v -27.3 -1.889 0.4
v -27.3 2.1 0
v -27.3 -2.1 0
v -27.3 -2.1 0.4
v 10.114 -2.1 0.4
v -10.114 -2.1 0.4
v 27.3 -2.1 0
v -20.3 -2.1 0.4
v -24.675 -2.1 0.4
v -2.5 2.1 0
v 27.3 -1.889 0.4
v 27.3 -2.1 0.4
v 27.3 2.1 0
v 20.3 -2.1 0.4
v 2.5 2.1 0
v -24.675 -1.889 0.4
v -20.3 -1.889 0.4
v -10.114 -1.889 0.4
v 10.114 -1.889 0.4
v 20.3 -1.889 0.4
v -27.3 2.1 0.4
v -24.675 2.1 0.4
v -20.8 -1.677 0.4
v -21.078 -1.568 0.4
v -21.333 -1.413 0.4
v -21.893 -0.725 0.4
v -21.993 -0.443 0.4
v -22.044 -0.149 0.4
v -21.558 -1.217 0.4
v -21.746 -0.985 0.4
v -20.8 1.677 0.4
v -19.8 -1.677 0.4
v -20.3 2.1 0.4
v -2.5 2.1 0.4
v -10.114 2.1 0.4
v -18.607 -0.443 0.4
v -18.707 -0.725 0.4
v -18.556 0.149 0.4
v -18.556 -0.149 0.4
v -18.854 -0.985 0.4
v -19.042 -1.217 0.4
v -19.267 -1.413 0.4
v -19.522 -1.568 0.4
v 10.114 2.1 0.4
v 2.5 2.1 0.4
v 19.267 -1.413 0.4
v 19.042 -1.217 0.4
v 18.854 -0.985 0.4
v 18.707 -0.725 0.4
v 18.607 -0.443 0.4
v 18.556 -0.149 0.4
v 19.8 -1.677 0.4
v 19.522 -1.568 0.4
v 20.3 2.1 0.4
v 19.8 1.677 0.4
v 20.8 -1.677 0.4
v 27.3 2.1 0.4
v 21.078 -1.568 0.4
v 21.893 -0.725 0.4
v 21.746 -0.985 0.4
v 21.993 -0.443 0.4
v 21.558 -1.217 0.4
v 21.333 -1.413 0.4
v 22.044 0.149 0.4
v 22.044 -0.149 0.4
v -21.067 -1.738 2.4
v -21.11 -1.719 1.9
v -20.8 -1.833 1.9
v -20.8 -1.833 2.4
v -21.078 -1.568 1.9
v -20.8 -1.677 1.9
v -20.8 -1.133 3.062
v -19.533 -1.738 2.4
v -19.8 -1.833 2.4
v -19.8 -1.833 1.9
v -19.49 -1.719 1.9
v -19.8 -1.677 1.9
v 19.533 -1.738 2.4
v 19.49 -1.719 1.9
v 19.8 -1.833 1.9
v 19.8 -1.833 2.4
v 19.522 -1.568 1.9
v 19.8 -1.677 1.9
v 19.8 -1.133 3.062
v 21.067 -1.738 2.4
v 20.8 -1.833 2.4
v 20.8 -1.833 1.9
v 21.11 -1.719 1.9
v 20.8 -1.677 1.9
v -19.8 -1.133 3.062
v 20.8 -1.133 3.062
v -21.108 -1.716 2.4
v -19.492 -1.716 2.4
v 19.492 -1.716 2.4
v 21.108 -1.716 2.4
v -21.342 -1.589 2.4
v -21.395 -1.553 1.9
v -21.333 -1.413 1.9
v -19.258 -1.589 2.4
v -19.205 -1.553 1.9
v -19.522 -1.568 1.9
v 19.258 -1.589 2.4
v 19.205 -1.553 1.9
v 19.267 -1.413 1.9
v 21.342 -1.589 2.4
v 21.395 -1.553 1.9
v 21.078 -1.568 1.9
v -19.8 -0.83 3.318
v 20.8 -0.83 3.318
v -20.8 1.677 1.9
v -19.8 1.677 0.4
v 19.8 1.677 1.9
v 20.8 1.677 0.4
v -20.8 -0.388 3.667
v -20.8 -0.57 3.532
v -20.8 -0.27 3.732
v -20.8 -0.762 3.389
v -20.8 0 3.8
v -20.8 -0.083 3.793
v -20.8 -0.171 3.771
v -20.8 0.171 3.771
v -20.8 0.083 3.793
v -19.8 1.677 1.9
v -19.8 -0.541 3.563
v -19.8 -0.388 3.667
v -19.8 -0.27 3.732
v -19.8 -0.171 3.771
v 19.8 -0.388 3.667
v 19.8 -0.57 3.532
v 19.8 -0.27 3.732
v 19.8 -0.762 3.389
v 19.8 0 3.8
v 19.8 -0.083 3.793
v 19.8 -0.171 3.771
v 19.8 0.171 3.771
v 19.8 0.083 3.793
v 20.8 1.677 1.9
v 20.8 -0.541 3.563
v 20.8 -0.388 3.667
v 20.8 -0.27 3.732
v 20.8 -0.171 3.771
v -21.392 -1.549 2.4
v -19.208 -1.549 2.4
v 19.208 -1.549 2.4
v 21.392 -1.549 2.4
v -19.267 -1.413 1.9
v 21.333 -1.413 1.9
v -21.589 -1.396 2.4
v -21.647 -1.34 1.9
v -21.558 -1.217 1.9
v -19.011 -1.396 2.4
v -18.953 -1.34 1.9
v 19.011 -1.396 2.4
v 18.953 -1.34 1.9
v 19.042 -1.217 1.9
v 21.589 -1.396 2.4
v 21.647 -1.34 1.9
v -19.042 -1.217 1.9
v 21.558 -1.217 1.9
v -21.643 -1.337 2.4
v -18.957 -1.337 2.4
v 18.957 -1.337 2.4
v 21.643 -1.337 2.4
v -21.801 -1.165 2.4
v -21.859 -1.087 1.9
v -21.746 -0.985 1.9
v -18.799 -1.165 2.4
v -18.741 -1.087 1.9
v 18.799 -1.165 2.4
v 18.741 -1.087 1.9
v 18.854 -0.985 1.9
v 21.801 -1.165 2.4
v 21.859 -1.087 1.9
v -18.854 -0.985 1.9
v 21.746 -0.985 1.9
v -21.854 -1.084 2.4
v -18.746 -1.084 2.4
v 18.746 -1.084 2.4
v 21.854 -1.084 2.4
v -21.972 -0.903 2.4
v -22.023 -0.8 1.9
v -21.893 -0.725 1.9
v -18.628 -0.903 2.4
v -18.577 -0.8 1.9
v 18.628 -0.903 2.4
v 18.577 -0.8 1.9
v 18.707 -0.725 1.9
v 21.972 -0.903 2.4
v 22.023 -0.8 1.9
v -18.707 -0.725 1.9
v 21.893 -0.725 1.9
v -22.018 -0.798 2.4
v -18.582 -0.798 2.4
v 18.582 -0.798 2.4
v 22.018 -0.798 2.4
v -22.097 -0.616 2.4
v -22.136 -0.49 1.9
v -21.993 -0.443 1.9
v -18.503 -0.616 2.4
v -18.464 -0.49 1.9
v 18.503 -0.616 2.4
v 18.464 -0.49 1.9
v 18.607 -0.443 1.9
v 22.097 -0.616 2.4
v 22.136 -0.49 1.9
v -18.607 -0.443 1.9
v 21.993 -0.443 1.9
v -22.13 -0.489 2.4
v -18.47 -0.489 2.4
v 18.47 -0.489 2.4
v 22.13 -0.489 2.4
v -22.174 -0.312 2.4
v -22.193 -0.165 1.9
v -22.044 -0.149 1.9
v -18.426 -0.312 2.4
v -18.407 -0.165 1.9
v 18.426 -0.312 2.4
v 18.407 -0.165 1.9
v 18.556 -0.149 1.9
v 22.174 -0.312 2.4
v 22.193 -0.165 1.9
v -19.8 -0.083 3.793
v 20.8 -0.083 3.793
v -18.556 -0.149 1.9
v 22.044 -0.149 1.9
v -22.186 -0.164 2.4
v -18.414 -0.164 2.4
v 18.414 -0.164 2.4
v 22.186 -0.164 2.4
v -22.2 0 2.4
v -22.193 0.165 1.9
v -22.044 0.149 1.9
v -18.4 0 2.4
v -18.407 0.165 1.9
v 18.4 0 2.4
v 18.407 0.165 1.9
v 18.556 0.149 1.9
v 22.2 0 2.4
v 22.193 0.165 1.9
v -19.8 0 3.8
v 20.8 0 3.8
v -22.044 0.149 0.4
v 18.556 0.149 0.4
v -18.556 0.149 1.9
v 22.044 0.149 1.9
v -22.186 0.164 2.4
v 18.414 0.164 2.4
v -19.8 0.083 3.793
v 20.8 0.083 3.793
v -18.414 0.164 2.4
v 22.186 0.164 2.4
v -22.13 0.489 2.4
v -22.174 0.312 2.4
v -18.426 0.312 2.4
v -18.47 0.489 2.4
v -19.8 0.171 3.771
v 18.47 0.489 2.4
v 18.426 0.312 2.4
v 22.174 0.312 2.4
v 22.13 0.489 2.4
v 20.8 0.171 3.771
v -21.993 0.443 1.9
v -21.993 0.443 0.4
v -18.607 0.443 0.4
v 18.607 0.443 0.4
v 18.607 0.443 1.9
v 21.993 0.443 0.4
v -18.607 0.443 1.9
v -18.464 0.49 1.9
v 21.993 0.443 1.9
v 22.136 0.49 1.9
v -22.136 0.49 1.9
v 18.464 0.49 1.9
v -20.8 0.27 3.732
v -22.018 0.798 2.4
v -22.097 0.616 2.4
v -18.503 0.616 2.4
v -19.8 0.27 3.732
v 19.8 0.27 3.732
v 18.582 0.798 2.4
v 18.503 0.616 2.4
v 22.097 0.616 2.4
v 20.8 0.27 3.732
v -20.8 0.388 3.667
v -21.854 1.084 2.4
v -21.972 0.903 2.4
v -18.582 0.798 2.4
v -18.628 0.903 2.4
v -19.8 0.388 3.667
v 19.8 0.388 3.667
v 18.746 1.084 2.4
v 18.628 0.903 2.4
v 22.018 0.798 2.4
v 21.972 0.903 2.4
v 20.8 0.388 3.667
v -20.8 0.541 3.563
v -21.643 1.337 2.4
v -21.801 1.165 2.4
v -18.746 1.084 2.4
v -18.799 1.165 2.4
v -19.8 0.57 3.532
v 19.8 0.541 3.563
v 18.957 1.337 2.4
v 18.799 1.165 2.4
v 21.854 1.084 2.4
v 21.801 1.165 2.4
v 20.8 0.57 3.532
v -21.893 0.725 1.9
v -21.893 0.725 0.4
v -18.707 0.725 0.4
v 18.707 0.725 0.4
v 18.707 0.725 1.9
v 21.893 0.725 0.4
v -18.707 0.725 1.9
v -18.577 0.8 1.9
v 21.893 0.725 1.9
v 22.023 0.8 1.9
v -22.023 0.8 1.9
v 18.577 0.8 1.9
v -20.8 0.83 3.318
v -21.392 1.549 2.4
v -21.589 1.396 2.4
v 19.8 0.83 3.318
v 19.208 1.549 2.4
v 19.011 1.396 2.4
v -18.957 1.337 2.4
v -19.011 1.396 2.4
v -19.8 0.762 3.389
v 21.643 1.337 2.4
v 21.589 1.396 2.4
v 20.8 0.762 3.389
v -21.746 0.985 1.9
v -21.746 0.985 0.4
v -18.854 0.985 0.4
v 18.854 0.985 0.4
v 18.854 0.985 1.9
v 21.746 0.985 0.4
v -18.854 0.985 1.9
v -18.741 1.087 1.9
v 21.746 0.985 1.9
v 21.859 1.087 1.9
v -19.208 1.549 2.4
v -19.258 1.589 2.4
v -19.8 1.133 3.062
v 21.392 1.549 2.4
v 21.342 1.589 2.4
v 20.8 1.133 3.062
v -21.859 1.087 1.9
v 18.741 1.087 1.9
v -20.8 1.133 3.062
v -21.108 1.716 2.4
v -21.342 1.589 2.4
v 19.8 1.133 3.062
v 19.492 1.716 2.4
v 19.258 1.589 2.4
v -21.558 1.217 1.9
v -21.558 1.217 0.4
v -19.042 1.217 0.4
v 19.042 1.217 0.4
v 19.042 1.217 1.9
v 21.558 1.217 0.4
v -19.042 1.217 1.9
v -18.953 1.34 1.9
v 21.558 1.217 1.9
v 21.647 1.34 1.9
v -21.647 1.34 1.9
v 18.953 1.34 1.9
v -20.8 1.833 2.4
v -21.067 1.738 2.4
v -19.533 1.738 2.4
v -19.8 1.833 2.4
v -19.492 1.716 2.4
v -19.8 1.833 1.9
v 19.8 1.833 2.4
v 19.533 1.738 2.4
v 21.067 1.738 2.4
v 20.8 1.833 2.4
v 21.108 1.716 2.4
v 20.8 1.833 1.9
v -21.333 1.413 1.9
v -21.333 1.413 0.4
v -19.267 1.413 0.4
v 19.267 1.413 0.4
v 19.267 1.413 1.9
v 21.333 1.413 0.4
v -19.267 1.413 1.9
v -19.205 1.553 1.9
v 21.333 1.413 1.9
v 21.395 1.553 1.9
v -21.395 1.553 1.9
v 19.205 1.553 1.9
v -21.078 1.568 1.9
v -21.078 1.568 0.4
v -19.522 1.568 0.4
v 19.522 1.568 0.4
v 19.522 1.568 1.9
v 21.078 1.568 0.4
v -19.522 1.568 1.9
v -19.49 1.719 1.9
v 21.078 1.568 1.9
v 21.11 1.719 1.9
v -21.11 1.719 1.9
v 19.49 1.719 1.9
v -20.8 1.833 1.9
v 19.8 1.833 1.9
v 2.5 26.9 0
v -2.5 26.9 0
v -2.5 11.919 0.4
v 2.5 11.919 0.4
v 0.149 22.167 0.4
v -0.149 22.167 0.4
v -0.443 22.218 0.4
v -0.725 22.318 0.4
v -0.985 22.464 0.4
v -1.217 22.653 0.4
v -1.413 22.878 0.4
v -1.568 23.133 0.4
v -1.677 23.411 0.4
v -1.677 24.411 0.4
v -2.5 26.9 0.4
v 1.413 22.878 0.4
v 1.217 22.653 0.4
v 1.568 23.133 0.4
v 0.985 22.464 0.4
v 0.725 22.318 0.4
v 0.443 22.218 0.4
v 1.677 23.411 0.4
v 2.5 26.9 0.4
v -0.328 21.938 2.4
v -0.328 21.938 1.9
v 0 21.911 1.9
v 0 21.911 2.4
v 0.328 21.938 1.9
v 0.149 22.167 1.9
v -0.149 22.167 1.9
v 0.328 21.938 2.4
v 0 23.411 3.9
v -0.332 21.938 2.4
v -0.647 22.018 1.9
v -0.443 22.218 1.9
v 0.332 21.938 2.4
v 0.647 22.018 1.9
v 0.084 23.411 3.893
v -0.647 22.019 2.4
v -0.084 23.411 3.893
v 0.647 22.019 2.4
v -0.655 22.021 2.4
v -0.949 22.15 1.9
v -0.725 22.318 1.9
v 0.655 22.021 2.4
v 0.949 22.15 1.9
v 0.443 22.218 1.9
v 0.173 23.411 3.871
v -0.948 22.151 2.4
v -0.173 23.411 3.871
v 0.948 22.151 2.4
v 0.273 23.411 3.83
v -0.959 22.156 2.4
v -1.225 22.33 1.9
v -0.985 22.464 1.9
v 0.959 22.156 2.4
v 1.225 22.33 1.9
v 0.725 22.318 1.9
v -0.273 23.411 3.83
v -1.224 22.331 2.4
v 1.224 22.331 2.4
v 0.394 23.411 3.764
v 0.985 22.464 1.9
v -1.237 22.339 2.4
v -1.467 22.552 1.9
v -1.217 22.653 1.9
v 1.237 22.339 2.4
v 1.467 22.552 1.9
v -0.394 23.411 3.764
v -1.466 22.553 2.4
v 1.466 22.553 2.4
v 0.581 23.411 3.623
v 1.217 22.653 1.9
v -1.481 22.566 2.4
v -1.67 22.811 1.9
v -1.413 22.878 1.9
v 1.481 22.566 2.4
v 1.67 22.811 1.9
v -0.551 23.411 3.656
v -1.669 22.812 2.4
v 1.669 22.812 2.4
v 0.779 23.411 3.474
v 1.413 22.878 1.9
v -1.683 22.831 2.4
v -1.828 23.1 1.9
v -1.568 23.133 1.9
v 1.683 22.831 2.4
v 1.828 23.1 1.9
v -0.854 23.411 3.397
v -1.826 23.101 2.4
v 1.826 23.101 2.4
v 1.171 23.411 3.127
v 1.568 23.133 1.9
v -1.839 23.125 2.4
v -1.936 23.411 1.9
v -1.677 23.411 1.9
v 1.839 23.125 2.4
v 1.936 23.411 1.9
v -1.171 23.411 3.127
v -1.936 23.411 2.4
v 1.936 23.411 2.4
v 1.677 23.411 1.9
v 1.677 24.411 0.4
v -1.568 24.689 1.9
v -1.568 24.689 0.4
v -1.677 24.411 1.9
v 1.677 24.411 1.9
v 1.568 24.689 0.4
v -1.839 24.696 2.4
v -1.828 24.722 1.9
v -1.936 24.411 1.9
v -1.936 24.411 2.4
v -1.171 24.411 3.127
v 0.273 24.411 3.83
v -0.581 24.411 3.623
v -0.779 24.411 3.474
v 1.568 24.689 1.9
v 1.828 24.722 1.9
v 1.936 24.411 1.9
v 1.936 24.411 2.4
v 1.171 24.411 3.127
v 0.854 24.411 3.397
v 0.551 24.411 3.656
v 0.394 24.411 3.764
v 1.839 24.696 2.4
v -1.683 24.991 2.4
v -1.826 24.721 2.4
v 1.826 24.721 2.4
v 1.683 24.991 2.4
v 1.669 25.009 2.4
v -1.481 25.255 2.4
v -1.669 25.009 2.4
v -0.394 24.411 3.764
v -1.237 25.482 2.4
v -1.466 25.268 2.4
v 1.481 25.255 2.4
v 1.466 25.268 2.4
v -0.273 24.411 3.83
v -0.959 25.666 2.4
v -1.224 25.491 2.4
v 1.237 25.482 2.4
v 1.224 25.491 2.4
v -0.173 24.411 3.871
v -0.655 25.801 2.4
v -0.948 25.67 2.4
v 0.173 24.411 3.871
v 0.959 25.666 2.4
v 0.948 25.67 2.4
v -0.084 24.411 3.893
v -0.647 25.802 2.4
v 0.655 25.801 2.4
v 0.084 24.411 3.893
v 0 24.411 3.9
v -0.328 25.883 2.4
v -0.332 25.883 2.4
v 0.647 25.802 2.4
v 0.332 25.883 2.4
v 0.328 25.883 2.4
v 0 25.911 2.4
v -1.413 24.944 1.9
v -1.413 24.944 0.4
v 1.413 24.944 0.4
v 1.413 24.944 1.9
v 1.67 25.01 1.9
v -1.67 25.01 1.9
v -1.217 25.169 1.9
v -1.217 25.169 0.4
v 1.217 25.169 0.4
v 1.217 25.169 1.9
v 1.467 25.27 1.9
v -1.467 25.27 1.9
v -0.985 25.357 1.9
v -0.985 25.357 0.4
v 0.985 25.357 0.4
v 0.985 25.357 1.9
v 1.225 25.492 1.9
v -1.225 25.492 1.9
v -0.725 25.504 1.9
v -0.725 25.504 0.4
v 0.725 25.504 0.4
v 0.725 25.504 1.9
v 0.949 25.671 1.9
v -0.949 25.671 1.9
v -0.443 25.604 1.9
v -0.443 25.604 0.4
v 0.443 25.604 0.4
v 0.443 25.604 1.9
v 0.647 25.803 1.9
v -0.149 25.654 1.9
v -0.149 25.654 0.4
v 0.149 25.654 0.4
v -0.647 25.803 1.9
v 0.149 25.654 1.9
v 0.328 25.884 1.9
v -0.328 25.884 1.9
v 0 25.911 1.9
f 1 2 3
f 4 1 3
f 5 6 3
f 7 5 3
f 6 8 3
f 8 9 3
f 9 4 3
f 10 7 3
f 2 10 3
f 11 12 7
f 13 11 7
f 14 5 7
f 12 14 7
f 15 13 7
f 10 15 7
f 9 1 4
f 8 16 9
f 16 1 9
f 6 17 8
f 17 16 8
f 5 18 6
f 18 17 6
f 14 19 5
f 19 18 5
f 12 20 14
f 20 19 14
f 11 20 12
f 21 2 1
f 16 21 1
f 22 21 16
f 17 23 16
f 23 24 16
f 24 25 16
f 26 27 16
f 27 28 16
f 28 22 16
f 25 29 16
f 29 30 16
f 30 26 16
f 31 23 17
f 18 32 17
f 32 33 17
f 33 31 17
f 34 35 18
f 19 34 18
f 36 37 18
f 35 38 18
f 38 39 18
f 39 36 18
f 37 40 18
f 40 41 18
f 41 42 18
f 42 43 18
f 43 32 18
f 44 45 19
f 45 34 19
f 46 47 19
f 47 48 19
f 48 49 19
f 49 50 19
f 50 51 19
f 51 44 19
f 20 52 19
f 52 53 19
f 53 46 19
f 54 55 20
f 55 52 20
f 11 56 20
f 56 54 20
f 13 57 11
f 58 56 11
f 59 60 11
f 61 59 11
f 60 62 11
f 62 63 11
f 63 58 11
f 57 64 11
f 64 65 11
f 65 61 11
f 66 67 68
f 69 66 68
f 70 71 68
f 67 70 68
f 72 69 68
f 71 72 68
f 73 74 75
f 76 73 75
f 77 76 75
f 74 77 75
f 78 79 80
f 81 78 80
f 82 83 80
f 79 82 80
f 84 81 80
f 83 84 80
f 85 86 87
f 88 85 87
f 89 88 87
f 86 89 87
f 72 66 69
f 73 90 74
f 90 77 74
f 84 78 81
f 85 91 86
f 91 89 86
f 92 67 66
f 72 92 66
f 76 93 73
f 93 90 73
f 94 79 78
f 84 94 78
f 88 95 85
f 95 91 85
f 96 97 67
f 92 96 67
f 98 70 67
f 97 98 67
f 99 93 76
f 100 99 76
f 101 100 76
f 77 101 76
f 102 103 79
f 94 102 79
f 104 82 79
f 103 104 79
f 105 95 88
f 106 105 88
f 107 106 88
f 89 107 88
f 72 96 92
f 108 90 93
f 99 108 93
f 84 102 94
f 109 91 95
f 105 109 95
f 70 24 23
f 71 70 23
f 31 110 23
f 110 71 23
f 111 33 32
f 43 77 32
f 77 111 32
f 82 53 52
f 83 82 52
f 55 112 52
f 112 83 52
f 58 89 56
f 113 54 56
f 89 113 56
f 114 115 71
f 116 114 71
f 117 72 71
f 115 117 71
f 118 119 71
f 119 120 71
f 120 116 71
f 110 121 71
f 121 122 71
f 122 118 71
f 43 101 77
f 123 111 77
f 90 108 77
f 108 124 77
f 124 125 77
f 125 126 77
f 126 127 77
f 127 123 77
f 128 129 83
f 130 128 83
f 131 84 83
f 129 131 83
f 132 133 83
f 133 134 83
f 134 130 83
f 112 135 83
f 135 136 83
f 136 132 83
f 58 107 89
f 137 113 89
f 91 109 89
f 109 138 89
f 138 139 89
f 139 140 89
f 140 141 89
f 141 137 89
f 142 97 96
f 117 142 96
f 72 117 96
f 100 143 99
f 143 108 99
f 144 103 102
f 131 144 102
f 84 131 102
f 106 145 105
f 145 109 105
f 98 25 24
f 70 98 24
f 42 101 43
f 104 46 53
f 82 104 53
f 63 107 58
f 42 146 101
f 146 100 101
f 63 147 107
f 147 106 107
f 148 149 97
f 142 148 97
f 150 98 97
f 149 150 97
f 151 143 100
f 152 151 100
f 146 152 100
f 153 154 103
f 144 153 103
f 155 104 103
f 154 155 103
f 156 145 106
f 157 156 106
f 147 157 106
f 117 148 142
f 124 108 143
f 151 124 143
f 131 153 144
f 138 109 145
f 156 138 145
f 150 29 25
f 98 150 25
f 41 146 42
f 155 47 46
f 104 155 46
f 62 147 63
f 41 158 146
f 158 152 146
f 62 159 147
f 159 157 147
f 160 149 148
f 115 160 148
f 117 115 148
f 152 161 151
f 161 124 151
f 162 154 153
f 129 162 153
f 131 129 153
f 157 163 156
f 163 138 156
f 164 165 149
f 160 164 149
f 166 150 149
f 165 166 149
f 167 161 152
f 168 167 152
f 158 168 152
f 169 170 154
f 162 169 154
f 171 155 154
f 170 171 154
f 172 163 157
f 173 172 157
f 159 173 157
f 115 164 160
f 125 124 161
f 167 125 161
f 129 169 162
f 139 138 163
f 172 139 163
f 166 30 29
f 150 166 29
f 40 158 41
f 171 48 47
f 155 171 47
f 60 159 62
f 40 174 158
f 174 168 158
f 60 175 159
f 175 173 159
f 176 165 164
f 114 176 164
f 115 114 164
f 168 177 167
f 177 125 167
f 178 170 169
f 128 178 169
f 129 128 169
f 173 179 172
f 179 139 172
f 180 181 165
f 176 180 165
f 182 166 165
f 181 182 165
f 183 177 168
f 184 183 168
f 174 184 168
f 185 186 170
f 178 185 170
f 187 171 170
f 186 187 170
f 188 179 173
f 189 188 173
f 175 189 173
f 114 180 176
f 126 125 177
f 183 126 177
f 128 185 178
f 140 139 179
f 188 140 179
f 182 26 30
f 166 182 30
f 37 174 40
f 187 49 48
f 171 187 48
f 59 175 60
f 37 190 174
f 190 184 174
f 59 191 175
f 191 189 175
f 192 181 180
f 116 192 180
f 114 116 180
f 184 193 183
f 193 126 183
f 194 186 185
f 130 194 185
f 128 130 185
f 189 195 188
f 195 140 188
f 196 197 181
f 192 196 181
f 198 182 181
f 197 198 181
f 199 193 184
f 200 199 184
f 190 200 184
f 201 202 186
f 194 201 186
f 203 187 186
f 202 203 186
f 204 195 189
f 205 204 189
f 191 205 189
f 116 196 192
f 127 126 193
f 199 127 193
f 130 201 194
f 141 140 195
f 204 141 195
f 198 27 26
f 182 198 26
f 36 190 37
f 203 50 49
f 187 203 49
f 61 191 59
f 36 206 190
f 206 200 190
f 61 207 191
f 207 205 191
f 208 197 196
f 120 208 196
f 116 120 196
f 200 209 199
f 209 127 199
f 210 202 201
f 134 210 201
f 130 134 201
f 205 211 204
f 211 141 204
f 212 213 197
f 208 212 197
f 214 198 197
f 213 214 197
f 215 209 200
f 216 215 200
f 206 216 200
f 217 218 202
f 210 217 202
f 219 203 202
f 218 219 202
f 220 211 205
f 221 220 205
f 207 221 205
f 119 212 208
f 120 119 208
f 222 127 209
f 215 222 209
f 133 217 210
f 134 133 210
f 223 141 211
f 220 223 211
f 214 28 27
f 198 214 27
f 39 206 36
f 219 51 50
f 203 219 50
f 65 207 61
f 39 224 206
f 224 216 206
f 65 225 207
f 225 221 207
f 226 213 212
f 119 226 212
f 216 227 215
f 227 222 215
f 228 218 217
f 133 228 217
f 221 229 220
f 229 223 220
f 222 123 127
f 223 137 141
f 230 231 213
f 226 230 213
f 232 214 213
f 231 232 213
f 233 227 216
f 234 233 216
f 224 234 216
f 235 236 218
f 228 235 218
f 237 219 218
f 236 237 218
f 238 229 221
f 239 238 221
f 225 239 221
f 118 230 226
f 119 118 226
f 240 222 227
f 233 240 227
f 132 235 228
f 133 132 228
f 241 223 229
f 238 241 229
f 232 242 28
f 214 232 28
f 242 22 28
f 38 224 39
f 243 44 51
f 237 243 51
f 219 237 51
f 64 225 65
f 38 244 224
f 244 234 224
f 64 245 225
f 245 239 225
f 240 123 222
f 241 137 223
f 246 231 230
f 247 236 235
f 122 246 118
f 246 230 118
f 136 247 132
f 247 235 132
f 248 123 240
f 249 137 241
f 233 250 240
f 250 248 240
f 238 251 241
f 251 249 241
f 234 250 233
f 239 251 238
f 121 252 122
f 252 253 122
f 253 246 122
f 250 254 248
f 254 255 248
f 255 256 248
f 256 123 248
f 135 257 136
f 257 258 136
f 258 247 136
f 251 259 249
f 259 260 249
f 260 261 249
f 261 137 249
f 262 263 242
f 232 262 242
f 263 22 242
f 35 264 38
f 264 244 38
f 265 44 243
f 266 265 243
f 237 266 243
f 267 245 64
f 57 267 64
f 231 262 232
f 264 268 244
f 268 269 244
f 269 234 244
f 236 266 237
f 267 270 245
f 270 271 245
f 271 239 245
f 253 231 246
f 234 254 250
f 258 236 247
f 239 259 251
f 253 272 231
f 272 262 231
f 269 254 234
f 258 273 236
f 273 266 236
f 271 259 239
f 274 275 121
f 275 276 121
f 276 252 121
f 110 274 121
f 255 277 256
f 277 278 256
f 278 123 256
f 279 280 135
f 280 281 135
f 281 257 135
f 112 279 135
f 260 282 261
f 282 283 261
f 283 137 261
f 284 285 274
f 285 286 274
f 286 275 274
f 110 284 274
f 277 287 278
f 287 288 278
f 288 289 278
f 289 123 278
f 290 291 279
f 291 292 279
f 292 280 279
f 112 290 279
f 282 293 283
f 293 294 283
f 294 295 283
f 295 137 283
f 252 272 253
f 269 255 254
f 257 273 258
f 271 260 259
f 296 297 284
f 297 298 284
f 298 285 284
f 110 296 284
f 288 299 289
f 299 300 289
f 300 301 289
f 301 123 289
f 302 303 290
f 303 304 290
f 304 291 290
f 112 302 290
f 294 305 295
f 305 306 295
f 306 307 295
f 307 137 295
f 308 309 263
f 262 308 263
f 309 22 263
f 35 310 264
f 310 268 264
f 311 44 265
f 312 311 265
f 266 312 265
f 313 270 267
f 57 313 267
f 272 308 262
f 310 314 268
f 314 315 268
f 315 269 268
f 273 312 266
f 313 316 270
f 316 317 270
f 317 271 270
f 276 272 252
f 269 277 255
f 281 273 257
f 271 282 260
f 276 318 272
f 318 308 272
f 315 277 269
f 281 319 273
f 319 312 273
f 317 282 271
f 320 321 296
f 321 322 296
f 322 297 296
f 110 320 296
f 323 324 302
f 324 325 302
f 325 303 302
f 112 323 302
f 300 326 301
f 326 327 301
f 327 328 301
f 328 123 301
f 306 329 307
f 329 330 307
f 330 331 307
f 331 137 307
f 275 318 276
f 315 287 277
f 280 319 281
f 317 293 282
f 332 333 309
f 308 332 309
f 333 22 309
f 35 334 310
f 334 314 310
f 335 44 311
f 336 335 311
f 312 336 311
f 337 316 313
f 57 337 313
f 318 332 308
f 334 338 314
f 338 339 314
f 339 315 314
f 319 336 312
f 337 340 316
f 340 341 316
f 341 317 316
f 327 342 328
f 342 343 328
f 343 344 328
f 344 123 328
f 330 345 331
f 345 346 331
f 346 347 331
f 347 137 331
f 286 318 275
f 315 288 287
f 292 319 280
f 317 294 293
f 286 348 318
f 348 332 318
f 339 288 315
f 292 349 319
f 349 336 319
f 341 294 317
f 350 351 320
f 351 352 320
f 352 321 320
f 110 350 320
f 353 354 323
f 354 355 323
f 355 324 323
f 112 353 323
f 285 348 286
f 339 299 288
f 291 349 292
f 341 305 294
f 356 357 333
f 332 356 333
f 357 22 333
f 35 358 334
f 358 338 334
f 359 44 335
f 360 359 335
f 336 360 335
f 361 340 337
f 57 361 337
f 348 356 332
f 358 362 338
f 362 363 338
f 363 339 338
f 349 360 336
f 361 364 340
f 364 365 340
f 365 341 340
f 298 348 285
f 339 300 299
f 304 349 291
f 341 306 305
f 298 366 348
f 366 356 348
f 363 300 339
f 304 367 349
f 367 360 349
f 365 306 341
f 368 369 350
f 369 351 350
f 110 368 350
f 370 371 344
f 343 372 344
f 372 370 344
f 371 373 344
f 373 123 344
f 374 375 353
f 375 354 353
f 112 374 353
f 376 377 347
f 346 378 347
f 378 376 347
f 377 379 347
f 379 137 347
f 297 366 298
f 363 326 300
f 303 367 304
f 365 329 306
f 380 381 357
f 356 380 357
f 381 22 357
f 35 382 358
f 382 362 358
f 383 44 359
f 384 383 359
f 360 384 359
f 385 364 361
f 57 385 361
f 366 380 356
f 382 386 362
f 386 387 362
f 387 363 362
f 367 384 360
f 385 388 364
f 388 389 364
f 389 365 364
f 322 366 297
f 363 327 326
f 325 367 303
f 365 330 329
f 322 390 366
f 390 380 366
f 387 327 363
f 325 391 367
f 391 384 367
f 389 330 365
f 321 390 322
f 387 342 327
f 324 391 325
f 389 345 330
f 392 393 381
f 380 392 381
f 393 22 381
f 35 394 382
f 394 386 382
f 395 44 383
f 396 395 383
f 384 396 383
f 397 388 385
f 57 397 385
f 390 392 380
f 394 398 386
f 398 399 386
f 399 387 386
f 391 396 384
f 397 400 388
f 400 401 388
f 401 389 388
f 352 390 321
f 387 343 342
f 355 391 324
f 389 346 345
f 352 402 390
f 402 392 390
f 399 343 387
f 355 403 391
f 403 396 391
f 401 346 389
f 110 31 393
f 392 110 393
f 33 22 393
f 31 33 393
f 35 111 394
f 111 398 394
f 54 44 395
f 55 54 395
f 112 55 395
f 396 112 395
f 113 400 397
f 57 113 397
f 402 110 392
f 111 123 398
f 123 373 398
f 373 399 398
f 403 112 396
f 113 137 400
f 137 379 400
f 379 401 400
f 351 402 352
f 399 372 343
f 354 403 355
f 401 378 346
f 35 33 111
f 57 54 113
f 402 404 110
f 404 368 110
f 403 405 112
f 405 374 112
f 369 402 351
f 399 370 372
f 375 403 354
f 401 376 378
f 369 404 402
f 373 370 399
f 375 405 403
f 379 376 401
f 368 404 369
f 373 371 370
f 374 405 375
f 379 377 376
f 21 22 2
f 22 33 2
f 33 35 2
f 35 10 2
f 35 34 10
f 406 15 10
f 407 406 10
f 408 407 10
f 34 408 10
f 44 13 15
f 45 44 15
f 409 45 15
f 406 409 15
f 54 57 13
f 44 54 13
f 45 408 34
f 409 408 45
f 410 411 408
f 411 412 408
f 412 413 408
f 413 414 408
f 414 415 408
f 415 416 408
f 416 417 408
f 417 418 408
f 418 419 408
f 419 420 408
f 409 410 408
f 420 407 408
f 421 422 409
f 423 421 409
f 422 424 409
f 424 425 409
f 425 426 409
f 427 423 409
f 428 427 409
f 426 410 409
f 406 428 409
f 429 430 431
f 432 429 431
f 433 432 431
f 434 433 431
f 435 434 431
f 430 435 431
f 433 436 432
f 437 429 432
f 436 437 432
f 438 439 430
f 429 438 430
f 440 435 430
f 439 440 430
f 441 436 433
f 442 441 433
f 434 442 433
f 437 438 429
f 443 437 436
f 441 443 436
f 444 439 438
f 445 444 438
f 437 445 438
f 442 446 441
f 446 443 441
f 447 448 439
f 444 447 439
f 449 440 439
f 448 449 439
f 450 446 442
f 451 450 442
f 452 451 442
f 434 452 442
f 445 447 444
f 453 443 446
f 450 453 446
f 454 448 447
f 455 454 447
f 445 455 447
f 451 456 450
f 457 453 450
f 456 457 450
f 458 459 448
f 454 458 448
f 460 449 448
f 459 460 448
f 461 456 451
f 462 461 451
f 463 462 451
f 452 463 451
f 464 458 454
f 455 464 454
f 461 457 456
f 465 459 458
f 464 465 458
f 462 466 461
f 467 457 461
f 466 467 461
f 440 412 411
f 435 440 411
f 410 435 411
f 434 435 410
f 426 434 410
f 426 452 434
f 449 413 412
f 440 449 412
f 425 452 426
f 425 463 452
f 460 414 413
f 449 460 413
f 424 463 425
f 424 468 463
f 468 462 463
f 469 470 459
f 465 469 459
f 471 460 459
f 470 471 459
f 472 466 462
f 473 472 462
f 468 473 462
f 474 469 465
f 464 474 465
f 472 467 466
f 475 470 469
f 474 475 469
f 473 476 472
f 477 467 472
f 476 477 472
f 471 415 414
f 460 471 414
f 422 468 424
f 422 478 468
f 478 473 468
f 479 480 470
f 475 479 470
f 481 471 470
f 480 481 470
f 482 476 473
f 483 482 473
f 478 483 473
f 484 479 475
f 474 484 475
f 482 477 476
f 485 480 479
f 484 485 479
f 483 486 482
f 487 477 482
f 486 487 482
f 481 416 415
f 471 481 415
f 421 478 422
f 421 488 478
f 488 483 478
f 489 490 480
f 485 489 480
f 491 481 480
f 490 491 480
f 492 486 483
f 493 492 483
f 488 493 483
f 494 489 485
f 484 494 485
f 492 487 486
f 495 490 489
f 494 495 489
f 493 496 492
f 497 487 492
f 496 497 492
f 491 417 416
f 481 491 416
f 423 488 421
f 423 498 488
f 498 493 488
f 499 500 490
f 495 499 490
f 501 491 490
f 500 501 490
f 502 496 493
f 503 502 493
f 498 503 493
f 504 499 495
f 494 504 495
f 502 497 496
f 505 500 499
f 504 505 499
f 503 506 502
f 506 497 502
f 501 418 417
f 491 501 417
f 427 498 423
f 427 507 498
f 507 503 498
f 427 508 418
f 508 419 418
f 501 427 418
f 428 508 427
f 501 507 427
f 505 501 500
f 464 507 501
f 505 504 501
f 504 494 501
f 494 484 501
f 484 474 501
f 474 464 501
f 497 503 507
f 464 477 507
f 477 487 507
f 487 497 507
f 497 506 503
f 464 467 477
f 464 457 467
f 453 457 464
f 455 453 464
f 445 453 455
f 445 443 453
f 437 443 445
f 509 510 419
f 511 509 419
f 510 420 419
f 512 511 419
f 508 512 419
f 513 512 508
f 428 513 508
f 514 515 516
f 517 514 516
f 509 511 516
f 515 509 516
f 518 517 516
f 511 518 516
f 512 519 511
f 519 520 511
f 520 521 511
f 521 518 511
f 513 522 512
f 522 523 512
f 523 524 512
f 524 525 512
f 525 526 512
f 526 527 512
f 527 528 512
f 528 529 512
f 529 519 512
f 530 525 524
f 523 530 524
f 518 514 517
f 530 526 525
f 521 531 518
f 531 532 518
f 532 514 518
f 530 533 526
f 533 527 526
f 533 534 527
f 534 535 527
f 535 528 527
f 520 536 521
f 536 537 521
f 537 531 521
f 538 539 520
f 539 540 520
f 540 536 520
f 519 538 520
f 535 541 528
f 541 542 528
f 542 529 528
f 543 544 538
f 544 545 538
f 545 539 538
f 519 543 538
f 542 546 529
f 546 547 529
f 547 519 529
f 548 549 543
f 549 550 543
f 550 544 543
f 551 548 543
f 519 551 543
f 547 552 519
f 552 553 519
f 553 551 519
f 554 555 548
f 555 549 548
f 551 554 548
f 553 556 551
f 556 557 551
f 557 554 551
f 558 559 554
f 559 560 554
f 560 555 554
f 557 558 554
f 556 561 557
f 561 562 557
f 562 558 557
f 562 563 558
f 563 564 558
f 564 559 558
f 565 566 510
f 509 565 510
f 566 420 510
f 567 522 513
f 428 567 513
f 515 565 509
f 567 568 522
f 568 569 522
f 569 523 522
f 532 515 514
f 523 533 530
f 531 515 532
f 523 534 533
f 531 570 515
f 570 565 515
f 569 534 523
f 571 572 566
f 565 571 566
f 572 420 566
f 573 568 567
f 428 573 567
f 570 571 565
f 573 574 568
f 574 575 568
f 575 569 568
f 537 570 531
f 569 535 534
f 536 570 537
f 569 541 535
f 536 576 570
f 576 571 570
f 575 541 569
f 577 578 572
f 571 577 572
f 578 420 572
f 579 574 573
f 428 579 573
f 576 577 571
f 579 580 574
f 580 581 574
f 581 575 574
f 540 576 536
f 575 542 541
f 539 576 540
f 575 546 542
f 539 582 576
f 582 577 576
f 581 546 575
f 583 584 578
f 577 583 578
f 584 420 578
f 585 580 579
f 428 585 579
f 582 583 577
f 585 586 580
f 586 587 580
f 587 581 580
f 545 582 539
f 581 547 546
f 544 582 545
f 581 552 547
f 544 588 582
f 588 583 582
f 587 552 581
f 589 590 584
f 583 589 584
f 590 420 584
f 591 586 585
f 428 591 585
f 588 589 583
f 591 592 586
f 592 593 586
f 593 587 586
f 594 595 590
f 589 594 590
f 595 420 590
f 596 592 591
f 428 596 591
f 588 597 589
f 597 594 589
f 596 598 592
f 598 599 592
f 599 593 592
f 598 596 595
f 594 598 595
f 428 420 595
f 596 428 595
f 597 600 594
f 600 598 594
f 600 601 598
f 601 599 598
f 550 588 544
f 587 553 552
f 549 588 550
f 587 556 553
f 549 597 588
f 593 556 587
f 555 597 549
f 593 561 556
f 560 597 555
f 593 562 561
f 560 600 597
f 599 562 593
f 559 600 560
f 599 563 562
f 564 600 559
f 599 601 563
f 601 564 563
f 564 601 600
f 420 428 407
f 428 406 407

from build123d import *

# Parameters (mm, degrees)
SKICA2_W                 = 54.6
SKICA2_H                 = 4.2
P_IDAT_VYSUNUT_M2_DEPTH  = 0.4
SKICA3_R                 = 1.75
P_IDAT_VYSUNUT_M3_DEPTH  = 1.5
SKICA5_R                 = 1.9
P_IDAT_VYSUNUT_M5_DEPTH  = 2
ZKOSEN_2_SIZE            = 1.5
SKICA7_W                 = 1
SKICA7_H                 = 5
ODEBRAT_VYSUNUT_M1_DEPTH = 3.5
SKICA8_W                 = 5
SKICA8_H                 = 24.8
P_IDAT_VYSUNUT_M6_DEPTH  = 0.4
SKICA9_R                 = 1.75
P_IDAT_VYSUNUT_M7_DEPTH  = 1.5
SKICA10_R                = 2
P_IDAT_VYSUNUT_M8_DEPTH  = 2
ZKOSEN_3_SIZE            = 1.5
SKICA11_W                = 5
SKICA11_H                = 1
ODEBRAT_VYSUNUT_M2_DEPTH = 3.5


with BuildPart() as part:
    # Skica2 → Přidat vysunutím2 (new body)
    with BuildSketch(Plane.XY):
        Rectangle(SKICA2_W, SKICA2_H)
    extrude(amount=P_IDAT_VYSUNUT_M2_DEPTH)

    # Skica3 → Přidat vysunutím3 (add)
    with BuildSketch(Plane.XY.offset(0.4)):
        with Locations((-20.3, 0)):
            Circle(SKICA3_R)
        with Locations((20.3, 0)):
            Circle(SKICA3_R)
    extrude(amount=P_IDAT_VYSUNUT_M3_DEPTH)

    # Skica5 → Přidat vysunutím5 (add)
    with BuildSketch(Plane.XY.offset(1.9)):
        with Locations((-20.3, 0)):
            Circle(SKICA5_R)
        with Locations((20.3, 0)):
            Circle(SKICA5_R)
    extrude(amount=P_IDAT_VYSUNUT_M5_DEPTH)

    # Zkosení2
    zkosen_2_edges = [part.edges().sort_by_distance(p)[0] for p in [
        (-22.2, 0, 3.9),
        (18.4, 0, 3.9),
    ]]
    chamfer(zkosen_2_edges, length=ZKOSEN_2_SIZE)

    # Skica7 → Odebrat vysunutím1 (cut)
    with BuildSketch(Plane.XY.offset(3.9)):
        with Locations((-20.3, 0)):
            Rectangle(SKICA7_W, SKICA7_H)
        with Locations((20.3, 0)):
            Rectangle(SKICA7_W, SKICA7_H)
    extrude(amount=-ODEBRAT_VYSUNUT_M1_DEPTH, mode=Mode.SUBTRACT)

    # Skica8 → Přidat vysunutím6 (add)
    with BuildSketch(Plane(origin=(0, 0, 0), x_dir=(-1, 0, 0), z_dir=(0, 0, -1))):
        with Locations((0, 14.5)):
            Rectangle(SKICA8_W, SKICA8_H)
    extrude(amount=-P_IDAT_VYSUNUT_M6_DEPTH)

    # Skica9 → Přidat vysunutím7 (add)
    with BuildSketch(Plane.XY.offset(0.4)):
        with Locations((0, 23.910722543)):
            Circle(SKICA9_R)
    extrude(amount=P_IDAT_VYSUNUT_M7_DEPTH)

    # Skica10 → Přidat vysunutím8 (add)
    with BuildSketch(Plane.XY.offset(1.9)):
        with Locations((0, 23.910722543)):
            Circle(SKICA10_R)
    extrude(amount=P_IDAT_VYSUNUT_M8_DEPTH)

    # Zkosení3
    zkosen_3_edges = [part.edges().sort_by_distance(p)[0] for p in [
        (-2, 23.910722543, 3.9),
    ]]
    chamfer(zkosen_3_edges, length=ZKOSEN_3_SIZE)

    # Skica11 → Odebrat vysunutím2 (cut)
    with BuildSketch(Plane.XY.offset(3.9)):
        with Locations((0, 23.910722543)):
            Rectangle(SKICA11_W, SKICA11_H)
    extrude(amount=-ODEBRAT_VYSUNUT_M2_DEPTH, mode=Mode.SUBTRACT)


solid = part.part
